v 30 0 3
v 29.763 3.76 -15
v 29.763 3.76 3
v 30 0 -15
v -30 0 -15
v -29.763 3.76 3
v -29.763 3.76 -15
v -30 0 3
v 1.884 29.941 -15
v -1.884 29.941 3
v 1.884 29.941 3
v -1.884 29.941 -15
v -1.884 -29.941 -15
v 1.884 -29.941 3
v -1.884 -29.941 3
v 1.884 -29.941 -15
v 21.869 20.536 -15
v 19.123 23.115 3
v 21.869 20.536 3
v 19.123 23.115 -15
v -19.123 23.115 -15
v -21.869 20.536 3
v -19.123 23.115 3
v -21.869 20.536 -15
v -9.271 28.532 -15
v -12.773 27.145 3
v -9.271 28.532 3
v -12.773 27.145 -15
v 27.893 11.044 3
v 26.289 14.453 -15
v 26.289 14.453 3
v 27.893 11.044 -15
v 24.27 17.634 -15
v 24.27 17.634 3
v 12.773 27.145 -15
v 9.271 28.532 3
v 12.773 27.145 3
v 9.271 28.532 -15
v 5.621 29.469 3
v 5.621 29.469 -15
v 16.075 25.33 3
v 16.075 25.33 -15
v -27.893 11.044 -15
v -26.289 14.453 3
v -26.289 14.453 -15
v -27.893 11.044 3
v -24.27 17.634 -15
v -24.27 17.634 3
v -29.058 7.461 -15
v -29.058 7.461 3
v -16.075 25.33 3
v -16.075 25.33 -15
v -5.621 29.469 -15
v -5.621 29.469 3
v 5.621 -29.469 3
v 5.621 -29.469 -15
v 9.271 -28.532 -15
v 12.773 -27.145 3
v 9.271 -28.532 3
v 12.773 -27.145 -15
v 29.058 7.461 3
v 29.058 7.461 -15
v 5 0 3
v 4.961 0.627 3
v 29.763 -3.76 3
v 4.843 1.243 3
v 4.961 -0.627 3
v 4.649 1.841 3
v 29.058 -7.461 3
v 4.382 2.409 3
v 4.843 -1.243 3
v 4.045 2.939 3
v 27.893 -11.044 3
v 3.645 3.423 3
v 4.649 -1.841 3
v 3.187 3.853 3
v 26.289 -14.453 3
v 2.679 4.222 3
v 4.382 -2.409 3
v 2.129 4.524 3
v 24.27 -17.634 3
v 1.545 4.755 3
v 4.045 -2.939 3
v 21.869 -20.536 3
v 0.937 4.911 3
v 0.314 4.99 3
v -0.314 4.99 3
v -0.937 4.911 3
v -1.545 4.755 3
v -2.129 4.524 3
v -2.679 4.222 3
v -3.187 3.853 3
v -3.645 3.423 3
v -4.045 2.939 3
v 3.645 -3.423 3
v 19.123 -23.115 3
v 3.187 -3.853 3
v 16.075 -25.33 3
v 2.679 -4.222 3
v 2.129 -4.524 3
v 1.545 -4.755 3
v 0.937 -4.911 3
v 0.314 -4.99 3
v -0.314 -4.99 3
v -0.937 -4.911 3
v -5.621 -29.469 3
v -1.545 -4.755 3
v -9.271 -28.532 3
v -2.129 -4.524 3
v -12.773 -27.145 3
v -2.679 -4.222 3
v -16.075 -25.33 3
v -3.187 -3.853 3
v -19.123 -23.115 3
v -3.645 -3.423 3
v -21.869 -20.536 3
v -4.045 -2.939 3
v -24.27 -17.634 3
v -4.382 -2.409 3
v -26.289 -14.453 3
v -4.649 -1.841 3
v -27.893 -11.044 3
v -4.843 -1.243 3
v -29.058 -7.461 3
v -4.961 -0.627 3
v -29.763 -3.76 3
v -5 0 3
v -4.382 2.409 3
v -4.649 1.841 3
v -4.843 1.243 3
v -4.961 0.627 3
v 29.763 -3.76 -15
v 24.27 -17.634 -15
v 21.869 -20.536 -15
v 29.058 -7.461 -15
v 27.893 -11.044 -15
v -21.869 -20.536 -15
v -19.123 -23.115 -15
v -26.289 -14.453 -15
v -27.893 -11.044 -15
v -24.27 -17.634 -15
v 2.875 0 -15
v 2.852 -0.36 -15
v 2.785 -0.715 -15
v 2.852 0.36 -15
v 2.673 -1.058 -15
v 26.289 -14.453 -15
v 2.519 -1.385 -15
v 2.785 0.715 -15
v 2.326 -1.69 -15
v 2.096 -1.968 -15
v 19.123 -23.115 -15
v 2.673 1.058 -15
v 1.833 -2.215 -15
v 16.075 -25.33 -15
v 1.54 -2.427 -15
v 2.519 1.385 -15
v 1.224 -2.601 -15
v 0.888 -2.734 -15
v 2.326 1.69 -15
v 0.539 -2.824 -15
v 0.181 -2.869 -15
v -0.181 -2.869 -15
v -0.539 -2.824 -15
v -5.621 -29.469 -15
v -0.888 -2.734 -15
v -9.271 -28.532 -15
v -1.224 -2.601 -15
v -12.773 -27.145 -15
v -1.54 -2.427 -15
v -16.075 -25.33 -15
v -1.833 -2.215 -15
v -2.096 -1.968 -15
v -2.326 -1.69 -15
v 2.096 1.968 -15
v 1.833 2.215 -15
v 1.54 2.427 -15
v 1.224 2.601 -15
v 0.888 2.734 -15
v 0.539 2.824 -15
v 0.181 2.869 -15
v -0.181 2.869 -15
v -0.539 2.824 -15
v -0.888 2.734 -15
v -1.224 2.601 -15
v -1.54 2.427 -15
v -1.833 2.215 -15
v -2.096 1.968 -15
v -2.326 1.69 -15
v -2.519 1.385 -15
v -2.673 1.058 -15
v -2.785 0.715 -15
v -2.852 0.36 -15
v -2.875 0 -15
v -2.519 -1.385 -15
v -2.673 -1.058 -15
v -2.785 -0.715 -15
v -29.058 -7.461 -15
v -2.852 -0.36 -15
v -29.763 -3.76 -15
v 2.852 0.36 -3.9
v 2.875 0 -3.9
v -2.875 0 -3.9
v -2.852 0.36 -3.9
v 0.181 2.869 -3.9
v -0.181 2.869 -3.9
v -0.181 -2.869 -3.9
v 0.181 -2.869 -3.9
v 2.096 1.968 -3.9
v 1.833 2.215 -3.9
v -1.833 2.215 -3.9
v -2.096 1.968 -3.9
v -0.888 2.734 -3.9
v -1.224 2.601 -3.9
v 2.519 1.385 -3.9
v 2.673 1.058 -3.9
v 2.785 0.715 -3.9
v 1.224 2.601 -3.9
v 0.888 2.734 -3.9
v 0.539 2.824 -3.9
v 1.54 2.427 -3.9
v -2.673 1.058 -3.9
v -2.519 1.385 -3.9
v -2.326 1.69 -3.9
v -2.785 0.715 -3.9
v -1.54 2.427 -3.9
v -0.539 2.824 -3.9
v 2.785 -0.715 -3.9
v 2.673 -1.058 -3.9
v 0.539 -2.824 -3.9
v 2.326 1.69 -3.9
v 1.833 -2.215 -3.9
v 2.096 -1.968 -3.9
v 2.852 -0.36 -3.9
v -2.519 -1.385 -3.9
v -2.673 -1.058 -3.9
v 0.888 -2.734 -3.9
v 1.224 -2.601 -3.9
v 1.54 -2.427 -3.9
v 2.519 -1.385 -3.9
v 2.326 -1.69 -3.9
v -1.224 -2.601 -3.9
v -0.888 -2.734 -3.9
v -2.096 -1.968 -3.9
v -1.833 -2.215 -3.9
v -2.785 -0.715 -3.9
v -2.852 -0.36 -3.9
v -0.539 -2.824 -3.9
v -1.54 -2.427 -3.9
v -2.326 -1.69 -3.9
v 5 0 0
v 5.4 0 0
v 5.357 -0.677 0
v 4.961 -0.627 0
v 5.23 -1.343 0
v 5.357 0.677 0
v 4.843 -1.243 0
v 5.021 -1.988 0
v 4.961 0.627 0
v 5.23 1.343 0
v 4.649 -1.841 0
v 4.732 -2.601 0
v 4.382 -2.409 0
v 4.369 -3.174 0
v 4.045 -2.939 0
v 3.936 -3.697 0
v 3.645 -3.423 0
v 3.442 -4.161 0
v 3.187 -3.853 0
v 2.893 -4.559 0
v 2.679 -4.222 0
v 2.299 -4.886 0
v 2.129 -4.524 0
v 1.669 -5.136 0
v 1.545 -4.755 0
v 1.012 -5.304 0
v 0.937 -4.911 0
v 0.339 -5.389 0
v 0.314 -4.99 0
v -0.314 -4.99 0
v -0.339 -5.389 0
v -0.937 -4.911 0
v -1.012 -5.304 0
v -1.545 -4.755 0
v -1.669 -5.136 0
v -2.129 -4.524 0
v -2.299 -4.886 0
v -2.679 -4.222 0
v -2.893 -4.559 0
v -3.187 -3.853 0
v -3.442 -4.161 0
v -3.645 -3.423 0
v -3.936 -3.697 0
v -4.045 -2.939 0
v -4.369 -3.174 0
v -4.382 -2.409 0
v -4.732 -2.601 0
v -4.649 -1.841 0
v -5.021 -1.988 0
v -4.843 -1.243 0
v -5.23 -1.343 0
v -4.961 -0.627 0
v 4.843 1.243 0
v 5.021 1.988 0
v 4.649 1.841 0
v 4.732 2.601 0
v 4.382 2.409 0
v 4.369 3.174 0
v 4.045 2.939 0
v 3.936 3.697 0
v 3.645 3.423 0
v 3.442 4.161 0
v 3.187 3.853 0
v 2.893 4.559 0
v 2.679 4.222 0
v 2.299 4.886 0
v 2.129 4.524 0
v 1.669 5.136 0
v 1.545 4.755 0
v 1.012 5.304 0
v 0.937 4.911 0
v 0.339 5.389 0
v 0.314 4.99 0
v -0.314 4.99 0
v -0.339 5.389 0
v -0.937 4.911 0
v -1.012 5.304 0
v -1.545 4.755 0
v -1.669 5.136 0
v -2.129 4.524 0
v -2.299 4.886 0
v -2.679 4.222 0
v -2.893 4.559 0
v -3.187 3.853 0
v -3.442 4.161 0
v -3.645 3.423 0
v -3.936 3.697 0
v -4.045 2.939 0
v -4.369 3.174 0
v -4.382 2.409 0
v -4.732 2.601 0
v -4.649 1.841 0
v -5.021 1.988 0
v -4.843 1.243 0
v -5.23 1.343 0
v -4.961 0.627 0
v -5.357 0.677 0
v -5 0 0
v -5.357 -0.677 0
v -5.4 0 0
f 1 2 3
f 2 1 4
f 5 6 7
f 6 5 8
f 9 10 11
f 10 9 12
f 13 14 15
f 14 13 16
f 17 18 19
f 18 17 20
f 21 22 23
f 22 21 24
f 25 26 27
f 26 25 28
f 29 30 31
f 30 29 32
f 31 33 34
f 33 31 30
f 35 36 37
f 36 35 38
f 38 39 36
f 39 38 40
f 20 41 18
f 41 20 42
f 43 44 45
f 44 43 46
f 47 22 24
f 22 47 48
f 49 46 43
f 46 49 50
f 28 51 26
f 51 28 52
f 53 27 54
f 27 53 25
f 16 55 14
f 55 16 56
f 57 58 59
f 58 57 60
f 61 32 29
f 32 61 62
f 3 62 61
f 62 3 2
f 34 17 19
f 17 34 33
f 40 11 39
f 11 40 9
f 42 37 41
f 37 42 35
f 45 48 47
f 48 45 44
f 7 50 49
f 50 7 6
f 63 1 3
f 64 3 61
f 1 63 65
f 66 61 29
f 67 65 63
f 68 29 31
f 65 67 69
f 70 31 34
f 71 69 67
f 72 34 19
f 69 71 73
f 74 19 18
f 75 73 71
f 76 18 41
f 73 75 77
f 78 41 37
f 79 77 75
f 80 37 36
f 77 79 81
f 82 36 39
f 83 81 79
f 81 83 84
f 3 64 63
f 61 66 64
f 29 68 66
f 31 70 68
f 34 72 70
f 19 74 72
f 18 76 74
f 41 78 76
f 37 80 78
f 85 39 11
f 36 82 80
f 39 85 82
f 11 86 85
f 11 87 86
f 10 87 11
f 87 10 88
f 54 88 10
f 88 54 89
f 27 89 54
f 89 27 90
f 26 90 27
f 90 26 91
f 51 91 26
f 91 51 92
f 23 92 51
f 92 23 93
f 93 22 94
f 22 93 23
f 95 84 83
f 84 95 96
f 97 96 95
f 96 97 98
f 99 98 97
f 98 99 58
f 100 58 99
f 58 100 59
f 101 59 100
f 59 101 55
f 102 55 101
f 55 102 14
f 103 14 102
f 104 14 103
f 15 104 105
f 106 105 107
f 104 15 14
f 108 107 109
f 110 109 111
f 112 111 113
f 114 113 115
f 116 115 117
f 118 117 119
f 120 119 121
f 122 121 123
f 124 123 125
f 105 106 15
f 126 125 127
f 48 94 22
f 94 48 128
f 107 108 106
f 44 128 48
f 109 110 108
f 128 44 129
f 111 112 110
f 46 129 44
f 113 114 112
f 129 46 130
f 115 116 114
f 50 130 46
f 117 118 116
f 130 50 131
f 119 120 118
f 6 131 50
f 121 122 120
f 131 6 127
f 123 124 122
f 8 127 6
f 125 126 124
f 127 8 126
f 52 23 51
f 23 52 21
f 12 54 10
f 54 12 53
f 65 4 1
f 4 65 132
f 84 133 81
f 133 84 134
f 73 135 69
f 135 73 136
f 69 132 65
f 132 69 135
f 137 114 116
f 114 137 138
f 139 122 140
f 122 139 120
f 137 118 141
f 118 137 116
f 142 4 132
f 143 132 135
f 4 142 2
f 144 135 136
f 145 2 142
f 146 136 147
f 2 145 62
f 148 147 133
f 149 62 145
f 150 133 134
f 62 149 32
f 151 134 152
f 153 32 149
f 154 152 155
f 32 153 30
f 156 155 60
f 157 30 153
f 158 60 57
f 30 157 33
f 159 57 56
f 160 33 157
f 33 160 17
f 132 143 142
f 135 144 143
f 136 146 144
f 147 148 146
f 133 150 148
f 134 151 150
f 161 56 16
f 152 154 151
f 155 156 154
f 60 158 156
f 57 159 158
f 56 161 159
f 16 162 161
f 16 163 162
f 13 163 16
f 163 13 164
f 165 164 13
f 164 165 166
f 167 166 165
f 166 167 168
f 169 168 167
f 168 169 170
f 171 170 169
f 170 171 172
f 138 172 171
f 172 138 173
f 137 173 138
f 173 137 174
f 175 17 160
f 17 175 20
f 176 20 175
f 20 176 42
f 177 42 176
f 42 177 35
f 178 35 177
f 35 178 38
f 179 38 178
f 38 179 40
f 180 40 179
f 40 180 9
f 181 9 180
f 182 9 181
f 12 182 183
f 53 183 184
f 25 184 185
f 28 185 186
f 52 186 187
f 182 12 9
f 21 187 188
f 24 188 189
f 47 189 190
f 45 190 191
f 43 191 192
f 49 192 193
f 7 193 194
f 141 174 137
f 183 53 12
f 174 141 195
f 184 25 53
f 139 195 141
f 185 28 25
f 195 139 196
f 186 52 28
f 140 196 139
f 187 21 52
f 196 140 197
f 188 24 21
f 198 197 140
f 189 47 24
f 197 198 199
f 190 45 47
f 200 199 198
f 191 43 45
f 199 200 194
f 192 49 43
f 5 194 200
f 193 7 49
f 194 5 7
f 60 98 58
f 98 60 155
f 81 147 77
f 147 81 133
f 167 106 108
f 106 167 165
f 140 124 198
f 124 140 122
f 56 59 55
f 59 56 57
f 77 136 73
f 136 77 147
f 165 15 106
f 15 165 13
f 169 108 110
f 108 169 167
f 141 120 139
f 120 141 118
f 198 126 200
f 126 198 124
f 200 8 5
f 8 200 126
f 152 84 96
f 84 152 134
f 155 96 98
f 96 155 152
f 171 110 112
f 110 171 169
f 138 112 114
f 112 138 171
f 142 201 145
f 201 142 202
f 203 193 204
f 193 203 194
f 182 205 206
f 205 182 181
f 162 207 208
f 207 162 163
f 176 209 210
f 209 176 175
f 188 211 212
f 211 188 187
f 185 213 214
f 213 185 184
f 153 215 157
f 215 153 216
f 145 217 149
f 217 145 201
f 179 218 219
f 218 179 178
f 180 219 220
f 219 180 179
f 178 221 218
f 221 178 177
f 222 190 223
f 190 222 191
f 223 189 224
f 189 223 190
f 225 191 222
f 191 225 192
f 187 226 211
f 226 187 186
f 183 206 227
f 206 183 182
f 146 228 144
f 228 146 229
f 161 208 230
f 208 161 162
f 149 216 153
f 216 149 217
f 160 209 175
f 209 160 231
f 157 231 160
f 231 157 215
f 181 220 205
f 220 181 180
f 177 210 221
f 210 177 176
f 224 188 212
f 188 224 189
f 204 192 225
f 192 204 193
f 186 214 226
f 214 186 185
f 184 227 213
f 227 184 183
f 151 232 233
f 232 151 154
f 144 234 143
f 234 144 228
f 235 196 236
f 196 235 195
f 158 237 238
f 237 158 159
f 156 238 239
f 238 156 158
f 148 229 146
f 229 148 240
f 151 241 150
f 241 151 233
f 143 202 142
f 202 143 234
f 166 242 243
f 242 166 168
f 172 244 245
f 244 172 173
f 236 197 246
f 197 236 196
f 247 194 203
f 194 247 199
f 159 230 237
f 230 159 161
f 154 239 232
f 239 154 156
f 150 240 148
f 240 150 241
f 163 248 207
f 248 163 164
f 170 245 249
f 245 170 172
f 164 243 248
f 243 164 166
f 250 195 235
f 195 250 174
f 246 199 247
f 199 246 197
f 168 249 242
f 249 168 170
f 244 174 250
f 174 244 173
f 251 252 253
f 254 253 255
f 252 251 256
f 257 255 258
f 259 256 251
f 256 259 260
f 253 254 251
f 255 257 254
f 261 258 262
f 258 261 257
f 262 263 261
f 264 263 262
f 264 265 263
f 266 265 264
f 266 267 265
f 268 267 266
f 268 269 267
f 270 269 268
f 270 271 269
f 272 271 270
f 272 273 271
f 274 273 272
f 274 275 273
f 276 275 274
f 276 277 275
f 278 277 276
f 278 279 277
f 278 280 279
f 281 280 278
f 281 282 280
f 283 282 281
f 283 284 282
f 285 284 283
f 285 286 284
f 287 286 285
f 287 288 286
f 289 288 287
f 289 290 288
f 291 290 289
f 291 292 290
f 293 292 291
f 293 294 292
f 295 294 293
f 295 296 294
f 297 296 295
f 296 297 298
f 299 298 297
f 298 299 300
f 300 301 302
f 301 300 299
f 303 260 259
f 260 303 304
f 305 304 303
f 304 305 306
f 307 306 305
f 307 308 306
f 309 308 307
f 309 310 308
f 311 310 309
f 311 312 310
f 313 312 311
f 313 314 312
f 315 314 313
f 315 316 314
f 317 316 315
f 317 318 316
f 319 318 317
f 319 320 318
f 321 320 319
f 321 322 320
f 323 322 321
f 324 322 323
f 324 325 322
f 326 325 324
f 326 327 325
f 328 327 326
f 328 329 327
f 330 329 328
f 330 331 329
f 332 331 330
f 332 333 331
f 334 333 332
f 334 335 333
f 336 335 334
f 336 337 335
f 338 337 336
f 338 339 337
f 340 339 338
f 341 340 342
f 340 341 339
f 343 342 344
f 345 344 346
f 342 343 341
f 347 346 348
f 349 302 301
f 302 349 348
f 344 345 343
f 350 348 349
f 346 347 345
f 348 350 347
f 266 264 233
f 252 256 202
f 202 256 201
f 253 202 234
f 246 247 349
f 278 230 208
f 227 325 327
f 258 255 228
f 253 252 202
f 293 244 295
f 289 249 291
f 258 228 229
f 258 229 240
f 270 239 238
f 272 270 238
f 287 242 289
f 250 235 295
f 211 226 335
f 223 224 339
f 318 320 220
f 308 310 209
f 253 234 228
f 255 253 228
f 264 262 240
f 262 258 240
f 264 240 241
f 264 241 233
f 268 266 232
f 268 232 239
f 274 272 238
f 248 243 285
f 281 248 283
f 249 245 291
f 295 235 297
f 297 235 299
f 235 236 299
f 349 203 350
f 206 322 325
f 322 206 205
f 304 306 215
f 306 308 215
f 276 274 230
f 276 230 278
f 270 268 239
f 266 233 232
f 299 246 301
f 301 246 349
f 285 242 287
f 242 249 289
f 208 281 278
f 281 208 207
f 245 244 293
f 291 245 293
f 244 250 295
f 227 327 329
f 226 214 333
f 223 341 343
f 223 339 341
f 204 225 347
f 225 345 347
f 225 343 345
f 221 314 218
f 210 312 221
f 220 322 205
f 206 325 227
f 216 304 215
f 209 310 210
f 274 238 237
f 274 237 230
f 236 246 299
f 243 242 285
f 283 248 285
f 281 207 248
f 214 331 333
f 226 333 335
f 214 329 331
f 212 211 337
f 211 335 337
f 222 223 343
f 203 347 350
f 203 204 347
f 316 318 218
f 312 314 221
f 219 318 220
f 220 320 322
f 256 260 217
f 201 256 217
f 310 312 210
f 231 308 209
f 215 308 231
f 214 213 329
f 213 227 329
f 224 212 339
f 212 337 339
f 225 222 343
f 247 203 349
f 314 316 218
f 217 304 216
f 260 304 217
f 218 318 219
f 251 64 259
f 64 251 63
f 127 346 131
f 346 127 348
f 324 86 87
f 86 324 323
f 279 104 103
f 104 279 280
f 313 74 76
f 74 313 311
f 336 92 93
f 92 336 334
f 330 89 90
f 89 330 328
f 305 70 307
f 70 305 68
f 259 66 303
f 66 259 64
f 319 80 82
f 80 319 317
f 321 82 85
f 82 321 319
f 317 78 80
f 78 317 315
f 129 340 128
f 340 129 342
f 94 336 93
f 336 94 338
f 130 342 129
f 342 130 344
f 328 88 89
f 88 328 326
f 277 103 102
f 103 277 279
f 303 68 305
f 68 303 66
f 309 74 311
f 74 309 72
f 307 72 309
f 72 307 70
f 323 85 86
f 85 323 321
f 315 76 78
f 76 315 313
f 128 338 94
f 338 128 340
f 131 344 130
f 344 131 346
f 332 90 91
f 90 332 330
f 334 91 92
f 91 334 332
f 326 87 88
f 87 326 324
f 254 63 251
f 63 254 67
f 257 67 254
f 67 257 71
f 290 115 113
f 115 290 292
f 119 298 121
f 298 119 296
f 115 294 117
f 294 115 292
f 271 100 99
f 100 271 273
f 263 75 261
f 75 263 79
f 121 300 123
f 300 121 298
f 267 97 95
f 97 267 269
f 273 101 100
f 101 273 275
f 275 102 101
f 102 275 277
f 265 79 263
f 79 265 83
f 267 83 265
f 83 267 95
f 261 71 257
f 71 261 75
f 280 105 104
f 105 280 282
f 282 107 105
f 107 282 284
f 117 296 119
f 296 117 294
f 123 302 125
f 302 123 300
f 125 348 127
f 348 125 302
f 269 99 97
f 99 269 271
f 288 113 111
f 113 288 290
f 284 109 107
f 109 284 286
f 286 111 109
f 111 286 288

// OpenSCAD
$fn = 50;

difference() {
	union() {
		translate(v = [0, 0, -15.0]) {
			cylinder(h = 18, r = 30.0);
		}
		#translate(v = [0, 0, -18.0]) {
			cylinder(h = 18, r = 2.875);
		}
	}
	union() {
		translate(v = [0, 0, 0]) {
			rotate(a = [0, 0, 0]) {
				difference() {
					union() {
						translate(v = [0, 0, -18.0]) {
							cylinder(h = 18, r = 2.6);
						}
						translate(v = [0, 0, -3.9]) {
							cylinder(h = 3.9, r1 = 2.875, r2 = 5.4);
						}
						translate(v = [0, 0, -18.0]) {
							cylinder(h = 18, r = 2.875);
						}
						translate(v = [0, 0, -18.0]) {
							cylinder(h = 18, r = 2.6);
						}
					}
					union();
				}
			}
		}
		#cylinder(h = 3, r = 5.0);
	}
}
